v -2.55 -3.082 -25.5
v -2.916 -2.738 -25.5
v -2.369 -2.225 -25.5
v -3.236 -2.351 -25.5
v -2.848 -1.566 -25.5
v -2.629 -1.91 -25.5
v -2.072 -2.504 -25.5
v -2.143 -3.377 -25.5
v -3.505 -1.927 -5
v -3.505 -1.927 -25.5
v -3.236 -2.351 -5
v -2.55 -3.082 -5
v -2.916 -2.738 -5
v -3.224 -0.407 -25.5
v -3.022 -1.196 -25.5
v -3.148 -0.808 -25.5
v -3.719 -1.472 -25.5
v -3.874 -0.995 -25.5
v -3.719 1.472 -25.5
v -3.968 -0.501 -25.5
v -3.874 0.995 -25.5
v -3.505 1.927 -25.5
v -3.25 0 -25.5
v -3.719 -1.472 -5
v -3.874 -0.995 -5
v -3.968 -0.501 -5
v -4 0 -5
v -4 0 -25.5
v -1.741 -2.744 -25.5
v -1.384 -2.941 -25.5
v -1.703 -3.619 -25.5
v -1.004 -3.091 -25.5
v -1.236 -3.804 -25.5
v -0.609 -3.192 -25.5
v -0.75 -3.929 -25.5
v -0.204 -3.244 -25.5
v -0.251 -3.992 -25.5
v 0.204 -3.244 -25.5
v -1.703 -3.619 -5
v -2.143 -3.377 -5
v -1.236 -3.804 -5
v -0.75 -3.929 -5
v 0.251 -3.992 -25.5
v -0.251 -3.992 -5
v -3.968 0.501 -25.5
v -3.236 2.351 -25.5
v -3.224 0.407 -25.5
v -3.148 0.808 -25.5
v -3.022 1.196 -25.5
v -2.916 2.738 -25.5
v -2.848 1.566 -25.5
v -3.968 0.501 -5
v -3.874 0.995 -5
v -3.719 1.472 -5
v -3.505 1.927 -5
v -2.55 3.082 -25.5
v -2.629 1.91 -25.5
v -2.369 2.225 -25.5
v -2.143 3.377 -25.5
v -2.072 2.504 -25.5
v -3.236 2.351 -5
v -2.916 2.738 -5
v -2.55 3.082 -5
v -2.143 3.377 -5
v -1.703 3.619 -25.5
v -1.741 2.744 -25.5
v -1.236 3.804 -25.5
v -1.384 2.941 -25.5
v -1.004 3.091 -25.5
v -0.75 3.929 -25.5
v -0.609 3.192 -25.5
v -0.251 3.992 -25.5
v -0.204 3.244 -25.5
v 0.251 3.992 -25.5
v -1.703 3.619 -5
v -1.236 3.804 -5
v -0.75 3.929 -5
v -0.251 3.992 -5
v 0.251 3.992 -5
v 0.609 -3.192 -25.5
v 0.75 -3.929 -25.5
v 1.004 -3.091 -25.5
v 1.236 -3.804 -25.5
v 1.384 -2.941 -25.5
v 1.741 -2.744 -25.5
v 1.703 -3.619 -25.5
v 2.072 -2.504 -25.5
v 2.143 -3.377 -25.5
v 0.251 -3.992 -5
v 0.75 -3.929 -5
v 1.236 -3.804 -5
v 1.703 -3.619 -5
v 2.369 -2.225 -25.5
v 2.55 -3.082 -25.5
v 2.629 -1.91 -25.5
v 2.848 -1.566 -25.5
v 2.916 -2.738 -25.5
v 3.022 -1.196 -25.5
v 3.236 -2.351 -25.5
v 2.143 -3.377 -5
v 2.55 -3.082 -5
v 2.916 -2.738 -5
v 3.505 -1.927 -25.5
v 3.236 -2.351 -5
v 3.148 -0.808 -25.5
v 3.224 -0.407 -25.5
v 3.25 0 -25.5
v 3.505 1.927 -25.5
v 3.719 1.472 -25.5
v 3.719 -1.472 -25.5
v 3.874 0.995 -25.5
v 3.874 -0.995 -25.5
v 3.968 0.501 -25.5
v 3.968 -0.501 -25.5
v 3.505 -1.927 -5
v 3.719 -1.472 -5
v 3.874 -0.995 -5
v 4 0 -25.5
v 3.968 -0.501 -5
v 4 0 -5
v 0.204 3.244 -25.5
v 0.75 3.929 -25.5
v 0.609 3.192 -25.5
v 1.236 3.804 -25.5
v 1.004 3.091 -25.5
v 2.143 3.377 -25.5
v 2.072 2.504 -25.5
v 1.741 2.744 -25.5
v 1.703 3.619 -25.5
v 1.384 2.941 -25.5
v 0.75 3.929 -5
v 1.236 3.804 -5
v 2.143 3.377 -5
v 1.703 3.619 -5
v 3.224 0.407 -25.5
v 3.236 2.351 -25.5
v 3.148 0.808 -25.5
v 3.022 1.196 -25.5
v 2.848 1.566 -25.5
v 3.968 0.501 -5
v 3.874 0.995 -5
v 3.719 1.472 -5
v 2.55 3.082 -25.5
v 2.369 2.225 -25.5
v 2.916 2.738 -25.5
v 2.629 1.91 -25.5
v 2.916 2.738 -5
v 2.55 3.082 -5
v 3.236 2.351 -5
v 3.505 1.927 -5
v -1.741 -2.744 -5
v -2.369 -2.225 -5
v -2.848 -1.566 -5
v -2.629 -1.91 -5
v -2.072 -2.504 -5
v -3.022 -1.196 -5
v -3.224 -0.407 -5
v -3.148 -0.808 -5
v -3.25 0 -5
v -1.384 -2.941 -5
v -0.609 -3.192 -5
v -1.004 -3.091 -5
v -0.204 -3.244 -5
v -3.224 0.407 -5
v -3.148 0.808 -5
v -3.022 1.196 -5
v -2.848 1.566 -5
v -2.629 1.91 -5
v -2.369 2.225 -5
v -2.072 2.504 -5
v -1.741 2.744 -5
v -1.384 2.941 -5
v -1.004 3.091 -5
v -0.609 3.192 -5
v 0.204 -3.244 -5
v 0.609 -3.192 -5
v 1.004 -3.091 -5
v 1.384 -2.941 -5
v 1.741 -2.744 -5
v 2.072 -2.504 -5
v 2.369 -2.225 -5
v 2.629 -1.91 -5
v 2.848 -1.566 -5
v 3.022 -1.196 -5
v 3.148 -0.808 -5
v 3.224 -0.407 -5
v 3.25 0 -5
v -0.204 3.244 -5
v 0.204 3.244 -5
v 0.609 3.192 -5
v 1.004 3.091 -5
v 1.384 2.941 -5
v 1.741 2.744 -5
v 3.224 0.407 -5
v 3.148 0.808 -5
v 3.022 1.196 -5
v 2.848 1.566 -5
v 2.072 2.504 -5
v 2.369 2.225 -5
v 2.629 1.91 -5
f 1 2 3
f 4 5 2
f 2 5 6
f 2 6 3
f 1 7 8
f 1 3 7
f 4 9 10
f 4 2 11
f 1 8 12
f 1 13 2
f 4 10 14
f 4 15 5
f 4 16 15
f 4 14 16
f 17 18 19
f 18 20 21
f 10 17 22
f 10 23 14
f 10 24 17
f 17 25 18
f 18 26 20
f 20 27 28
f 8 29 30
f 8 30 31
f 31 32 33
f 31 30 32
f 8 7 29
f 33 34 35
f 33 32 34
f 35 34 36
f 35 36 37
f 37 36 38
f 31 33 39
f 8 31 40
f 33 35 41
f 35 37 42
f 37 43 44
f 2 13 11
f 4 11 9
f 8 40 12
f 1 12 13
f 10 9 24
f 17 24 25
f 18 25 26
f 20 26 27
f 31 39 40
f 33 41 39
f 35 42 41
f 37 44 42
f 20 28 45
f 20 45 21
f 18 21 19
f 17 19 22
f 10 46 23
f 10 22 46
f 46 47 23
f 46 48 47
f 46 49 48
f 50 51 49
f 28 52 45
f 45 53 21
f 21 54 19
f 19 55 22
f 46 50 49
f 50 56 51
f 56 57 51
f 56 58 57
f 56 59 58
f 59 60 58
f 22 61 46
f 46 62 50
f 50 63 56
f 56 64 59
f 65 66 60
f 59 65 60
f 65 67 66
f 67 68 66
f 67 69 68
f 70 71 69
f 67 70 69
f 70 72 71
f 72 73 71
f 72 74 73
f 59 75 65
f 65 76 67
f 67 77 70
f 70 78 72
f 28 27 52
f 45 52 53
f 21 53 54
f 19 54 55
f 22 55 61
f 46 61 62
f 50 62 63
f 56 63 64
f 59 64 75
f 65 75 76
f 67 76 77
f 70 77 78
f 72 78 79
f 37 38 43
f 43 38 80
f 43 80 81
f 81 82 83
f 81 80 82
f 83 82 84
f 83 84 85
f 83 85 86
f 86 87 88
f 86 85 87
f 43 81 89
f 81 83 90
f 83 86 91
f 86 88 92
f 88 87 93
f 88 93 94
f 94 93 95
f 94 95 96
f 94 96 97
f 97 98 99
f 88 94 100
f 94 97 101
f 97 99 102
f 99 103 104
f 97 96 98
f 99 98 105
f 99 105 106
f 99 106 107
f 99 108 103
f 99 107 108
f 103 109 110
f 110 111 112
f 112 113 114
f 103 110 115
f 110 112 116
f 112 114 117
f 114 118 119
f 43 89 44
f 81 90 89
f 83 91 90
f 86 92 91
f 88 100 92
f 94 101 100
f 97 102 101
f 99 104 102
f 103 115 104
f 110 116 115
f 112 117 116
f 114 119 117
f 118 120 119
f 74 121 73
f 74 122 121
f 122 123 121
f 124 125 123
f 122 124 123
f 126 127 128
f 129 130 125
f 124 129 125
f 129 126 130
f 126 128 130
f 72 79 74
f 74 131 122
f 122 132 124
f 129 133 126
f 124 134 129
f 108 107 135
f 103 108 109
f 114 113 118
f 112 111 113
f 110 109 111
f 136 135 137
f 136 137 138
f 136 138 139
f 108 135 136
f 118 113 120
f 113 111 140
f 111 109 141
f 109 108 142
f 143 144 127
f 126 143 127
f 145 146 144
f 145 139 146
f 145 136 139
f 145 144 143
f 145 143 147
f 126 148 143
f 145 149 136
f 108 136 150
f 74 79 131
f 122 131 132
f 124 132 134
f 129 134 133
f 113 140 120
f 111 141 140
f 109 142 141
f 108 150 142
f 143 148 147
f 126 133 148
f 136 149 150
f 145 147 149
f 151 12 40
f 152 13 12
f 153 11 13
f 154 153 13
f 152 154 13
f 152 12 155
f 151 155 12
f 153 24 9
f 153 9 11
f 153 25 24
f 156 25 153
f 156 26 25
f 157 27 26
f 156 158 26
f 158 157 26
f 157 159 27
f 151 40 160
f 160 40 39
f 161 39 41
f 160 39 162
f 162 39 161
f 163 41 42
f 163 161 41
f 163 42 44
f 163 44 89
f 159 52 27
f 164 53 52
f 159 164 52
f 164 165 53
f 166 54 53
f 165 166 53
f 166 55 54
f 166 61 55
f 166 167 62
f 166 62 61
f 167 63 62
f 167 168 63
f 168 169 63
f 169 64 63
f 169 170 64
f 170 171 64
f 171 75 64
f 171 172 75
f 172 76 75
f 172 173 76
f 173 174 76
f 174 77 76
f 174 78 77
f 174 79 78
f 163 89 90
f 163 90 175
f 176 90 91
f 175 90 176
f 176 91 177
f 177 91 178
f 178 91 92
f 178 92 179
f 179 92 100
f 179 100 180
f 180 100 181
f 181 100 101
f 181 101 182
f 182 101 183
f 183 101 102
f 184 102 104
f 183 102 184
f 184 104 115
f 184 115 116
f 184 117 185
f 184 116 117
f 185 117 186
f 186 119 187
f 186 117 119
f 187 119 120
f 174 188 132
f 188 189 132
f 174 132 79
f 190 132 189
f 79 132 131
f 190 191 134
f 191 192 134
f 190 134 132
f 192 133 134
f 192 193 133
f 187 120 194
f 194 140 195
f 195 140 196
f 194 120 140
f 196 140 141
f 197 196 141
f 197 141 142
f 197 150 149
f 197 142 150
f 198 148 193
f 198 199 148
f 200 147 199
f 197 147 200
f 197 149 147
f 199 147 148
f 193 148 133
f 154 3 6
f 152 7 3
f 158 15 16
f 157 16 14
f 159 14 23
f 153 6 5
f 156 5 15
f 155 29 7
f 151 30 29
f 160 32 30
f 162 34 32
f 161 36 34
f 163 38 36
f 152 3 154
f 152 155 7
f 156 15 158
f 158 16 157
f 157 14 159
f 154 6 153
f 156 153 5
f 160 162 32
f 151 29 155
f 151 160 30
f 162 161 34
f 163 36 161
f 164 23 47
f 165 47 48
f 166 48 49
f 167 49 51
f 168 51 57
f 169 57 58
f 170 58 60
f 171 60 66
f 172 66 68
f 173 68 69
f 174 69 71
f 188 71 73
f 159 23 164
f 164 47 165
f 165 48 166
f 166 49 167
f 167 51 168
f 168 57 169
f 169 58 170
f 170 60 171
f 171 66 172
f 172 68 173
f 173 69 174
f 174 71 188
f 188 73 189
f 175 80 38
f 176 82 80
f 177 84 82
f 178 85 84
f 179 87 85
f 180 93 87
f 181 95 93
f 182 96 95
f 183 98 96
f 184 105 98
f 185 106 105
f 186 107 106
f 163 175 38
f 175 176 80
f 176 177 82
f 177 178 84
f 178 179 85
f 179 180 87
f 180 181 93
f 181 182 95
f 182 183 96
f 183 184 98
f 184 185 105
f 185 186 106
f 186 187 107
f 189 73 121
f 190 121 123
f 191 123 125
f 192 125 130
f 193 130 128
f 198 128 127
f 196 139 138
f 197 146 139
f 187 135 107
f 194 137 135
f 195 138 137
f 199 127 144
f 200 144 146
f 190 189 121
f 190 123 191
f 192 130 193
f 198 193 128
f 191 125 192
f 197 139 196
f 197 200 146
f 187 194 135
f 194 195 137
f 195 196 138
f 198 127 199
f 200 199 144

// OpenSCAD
$fn = 50;

difference() {
	union() {
		translate(v = [0, 0, -25.5]) {
			cylinder(h = 25.5, r = 4.0);
		}
		#translate(v = [0, 0, -27.0]) {
			cylinder(h = 27, r = 2.875);
		}
	}
	union() {
		translate(v = [0, 0, 0]) {
			rotate(a = [0, 0, 0]) {
				difference() {
					union() {
						translate(v = [0, 0, -5]) {
							linear_extrude(height = 5) {
								polygon(points = [[5.914249999999999, 0.0], [2.957125, 5.1218907443321156], [-2.9571249999999982, 5.1218907443321156], [-5.914249999999999, 7.242867331857232e-16], [-2.9571250000000022, -5.121890744332115], [2.9571249999999956, -5.121890744332118]]);
							}
						}
					}
					union();
				}
			}
		}
		#translate(v = [0, 0, -100.0]) {
			cylinder(h = 200, r = 3.25);
		}
	}
}
